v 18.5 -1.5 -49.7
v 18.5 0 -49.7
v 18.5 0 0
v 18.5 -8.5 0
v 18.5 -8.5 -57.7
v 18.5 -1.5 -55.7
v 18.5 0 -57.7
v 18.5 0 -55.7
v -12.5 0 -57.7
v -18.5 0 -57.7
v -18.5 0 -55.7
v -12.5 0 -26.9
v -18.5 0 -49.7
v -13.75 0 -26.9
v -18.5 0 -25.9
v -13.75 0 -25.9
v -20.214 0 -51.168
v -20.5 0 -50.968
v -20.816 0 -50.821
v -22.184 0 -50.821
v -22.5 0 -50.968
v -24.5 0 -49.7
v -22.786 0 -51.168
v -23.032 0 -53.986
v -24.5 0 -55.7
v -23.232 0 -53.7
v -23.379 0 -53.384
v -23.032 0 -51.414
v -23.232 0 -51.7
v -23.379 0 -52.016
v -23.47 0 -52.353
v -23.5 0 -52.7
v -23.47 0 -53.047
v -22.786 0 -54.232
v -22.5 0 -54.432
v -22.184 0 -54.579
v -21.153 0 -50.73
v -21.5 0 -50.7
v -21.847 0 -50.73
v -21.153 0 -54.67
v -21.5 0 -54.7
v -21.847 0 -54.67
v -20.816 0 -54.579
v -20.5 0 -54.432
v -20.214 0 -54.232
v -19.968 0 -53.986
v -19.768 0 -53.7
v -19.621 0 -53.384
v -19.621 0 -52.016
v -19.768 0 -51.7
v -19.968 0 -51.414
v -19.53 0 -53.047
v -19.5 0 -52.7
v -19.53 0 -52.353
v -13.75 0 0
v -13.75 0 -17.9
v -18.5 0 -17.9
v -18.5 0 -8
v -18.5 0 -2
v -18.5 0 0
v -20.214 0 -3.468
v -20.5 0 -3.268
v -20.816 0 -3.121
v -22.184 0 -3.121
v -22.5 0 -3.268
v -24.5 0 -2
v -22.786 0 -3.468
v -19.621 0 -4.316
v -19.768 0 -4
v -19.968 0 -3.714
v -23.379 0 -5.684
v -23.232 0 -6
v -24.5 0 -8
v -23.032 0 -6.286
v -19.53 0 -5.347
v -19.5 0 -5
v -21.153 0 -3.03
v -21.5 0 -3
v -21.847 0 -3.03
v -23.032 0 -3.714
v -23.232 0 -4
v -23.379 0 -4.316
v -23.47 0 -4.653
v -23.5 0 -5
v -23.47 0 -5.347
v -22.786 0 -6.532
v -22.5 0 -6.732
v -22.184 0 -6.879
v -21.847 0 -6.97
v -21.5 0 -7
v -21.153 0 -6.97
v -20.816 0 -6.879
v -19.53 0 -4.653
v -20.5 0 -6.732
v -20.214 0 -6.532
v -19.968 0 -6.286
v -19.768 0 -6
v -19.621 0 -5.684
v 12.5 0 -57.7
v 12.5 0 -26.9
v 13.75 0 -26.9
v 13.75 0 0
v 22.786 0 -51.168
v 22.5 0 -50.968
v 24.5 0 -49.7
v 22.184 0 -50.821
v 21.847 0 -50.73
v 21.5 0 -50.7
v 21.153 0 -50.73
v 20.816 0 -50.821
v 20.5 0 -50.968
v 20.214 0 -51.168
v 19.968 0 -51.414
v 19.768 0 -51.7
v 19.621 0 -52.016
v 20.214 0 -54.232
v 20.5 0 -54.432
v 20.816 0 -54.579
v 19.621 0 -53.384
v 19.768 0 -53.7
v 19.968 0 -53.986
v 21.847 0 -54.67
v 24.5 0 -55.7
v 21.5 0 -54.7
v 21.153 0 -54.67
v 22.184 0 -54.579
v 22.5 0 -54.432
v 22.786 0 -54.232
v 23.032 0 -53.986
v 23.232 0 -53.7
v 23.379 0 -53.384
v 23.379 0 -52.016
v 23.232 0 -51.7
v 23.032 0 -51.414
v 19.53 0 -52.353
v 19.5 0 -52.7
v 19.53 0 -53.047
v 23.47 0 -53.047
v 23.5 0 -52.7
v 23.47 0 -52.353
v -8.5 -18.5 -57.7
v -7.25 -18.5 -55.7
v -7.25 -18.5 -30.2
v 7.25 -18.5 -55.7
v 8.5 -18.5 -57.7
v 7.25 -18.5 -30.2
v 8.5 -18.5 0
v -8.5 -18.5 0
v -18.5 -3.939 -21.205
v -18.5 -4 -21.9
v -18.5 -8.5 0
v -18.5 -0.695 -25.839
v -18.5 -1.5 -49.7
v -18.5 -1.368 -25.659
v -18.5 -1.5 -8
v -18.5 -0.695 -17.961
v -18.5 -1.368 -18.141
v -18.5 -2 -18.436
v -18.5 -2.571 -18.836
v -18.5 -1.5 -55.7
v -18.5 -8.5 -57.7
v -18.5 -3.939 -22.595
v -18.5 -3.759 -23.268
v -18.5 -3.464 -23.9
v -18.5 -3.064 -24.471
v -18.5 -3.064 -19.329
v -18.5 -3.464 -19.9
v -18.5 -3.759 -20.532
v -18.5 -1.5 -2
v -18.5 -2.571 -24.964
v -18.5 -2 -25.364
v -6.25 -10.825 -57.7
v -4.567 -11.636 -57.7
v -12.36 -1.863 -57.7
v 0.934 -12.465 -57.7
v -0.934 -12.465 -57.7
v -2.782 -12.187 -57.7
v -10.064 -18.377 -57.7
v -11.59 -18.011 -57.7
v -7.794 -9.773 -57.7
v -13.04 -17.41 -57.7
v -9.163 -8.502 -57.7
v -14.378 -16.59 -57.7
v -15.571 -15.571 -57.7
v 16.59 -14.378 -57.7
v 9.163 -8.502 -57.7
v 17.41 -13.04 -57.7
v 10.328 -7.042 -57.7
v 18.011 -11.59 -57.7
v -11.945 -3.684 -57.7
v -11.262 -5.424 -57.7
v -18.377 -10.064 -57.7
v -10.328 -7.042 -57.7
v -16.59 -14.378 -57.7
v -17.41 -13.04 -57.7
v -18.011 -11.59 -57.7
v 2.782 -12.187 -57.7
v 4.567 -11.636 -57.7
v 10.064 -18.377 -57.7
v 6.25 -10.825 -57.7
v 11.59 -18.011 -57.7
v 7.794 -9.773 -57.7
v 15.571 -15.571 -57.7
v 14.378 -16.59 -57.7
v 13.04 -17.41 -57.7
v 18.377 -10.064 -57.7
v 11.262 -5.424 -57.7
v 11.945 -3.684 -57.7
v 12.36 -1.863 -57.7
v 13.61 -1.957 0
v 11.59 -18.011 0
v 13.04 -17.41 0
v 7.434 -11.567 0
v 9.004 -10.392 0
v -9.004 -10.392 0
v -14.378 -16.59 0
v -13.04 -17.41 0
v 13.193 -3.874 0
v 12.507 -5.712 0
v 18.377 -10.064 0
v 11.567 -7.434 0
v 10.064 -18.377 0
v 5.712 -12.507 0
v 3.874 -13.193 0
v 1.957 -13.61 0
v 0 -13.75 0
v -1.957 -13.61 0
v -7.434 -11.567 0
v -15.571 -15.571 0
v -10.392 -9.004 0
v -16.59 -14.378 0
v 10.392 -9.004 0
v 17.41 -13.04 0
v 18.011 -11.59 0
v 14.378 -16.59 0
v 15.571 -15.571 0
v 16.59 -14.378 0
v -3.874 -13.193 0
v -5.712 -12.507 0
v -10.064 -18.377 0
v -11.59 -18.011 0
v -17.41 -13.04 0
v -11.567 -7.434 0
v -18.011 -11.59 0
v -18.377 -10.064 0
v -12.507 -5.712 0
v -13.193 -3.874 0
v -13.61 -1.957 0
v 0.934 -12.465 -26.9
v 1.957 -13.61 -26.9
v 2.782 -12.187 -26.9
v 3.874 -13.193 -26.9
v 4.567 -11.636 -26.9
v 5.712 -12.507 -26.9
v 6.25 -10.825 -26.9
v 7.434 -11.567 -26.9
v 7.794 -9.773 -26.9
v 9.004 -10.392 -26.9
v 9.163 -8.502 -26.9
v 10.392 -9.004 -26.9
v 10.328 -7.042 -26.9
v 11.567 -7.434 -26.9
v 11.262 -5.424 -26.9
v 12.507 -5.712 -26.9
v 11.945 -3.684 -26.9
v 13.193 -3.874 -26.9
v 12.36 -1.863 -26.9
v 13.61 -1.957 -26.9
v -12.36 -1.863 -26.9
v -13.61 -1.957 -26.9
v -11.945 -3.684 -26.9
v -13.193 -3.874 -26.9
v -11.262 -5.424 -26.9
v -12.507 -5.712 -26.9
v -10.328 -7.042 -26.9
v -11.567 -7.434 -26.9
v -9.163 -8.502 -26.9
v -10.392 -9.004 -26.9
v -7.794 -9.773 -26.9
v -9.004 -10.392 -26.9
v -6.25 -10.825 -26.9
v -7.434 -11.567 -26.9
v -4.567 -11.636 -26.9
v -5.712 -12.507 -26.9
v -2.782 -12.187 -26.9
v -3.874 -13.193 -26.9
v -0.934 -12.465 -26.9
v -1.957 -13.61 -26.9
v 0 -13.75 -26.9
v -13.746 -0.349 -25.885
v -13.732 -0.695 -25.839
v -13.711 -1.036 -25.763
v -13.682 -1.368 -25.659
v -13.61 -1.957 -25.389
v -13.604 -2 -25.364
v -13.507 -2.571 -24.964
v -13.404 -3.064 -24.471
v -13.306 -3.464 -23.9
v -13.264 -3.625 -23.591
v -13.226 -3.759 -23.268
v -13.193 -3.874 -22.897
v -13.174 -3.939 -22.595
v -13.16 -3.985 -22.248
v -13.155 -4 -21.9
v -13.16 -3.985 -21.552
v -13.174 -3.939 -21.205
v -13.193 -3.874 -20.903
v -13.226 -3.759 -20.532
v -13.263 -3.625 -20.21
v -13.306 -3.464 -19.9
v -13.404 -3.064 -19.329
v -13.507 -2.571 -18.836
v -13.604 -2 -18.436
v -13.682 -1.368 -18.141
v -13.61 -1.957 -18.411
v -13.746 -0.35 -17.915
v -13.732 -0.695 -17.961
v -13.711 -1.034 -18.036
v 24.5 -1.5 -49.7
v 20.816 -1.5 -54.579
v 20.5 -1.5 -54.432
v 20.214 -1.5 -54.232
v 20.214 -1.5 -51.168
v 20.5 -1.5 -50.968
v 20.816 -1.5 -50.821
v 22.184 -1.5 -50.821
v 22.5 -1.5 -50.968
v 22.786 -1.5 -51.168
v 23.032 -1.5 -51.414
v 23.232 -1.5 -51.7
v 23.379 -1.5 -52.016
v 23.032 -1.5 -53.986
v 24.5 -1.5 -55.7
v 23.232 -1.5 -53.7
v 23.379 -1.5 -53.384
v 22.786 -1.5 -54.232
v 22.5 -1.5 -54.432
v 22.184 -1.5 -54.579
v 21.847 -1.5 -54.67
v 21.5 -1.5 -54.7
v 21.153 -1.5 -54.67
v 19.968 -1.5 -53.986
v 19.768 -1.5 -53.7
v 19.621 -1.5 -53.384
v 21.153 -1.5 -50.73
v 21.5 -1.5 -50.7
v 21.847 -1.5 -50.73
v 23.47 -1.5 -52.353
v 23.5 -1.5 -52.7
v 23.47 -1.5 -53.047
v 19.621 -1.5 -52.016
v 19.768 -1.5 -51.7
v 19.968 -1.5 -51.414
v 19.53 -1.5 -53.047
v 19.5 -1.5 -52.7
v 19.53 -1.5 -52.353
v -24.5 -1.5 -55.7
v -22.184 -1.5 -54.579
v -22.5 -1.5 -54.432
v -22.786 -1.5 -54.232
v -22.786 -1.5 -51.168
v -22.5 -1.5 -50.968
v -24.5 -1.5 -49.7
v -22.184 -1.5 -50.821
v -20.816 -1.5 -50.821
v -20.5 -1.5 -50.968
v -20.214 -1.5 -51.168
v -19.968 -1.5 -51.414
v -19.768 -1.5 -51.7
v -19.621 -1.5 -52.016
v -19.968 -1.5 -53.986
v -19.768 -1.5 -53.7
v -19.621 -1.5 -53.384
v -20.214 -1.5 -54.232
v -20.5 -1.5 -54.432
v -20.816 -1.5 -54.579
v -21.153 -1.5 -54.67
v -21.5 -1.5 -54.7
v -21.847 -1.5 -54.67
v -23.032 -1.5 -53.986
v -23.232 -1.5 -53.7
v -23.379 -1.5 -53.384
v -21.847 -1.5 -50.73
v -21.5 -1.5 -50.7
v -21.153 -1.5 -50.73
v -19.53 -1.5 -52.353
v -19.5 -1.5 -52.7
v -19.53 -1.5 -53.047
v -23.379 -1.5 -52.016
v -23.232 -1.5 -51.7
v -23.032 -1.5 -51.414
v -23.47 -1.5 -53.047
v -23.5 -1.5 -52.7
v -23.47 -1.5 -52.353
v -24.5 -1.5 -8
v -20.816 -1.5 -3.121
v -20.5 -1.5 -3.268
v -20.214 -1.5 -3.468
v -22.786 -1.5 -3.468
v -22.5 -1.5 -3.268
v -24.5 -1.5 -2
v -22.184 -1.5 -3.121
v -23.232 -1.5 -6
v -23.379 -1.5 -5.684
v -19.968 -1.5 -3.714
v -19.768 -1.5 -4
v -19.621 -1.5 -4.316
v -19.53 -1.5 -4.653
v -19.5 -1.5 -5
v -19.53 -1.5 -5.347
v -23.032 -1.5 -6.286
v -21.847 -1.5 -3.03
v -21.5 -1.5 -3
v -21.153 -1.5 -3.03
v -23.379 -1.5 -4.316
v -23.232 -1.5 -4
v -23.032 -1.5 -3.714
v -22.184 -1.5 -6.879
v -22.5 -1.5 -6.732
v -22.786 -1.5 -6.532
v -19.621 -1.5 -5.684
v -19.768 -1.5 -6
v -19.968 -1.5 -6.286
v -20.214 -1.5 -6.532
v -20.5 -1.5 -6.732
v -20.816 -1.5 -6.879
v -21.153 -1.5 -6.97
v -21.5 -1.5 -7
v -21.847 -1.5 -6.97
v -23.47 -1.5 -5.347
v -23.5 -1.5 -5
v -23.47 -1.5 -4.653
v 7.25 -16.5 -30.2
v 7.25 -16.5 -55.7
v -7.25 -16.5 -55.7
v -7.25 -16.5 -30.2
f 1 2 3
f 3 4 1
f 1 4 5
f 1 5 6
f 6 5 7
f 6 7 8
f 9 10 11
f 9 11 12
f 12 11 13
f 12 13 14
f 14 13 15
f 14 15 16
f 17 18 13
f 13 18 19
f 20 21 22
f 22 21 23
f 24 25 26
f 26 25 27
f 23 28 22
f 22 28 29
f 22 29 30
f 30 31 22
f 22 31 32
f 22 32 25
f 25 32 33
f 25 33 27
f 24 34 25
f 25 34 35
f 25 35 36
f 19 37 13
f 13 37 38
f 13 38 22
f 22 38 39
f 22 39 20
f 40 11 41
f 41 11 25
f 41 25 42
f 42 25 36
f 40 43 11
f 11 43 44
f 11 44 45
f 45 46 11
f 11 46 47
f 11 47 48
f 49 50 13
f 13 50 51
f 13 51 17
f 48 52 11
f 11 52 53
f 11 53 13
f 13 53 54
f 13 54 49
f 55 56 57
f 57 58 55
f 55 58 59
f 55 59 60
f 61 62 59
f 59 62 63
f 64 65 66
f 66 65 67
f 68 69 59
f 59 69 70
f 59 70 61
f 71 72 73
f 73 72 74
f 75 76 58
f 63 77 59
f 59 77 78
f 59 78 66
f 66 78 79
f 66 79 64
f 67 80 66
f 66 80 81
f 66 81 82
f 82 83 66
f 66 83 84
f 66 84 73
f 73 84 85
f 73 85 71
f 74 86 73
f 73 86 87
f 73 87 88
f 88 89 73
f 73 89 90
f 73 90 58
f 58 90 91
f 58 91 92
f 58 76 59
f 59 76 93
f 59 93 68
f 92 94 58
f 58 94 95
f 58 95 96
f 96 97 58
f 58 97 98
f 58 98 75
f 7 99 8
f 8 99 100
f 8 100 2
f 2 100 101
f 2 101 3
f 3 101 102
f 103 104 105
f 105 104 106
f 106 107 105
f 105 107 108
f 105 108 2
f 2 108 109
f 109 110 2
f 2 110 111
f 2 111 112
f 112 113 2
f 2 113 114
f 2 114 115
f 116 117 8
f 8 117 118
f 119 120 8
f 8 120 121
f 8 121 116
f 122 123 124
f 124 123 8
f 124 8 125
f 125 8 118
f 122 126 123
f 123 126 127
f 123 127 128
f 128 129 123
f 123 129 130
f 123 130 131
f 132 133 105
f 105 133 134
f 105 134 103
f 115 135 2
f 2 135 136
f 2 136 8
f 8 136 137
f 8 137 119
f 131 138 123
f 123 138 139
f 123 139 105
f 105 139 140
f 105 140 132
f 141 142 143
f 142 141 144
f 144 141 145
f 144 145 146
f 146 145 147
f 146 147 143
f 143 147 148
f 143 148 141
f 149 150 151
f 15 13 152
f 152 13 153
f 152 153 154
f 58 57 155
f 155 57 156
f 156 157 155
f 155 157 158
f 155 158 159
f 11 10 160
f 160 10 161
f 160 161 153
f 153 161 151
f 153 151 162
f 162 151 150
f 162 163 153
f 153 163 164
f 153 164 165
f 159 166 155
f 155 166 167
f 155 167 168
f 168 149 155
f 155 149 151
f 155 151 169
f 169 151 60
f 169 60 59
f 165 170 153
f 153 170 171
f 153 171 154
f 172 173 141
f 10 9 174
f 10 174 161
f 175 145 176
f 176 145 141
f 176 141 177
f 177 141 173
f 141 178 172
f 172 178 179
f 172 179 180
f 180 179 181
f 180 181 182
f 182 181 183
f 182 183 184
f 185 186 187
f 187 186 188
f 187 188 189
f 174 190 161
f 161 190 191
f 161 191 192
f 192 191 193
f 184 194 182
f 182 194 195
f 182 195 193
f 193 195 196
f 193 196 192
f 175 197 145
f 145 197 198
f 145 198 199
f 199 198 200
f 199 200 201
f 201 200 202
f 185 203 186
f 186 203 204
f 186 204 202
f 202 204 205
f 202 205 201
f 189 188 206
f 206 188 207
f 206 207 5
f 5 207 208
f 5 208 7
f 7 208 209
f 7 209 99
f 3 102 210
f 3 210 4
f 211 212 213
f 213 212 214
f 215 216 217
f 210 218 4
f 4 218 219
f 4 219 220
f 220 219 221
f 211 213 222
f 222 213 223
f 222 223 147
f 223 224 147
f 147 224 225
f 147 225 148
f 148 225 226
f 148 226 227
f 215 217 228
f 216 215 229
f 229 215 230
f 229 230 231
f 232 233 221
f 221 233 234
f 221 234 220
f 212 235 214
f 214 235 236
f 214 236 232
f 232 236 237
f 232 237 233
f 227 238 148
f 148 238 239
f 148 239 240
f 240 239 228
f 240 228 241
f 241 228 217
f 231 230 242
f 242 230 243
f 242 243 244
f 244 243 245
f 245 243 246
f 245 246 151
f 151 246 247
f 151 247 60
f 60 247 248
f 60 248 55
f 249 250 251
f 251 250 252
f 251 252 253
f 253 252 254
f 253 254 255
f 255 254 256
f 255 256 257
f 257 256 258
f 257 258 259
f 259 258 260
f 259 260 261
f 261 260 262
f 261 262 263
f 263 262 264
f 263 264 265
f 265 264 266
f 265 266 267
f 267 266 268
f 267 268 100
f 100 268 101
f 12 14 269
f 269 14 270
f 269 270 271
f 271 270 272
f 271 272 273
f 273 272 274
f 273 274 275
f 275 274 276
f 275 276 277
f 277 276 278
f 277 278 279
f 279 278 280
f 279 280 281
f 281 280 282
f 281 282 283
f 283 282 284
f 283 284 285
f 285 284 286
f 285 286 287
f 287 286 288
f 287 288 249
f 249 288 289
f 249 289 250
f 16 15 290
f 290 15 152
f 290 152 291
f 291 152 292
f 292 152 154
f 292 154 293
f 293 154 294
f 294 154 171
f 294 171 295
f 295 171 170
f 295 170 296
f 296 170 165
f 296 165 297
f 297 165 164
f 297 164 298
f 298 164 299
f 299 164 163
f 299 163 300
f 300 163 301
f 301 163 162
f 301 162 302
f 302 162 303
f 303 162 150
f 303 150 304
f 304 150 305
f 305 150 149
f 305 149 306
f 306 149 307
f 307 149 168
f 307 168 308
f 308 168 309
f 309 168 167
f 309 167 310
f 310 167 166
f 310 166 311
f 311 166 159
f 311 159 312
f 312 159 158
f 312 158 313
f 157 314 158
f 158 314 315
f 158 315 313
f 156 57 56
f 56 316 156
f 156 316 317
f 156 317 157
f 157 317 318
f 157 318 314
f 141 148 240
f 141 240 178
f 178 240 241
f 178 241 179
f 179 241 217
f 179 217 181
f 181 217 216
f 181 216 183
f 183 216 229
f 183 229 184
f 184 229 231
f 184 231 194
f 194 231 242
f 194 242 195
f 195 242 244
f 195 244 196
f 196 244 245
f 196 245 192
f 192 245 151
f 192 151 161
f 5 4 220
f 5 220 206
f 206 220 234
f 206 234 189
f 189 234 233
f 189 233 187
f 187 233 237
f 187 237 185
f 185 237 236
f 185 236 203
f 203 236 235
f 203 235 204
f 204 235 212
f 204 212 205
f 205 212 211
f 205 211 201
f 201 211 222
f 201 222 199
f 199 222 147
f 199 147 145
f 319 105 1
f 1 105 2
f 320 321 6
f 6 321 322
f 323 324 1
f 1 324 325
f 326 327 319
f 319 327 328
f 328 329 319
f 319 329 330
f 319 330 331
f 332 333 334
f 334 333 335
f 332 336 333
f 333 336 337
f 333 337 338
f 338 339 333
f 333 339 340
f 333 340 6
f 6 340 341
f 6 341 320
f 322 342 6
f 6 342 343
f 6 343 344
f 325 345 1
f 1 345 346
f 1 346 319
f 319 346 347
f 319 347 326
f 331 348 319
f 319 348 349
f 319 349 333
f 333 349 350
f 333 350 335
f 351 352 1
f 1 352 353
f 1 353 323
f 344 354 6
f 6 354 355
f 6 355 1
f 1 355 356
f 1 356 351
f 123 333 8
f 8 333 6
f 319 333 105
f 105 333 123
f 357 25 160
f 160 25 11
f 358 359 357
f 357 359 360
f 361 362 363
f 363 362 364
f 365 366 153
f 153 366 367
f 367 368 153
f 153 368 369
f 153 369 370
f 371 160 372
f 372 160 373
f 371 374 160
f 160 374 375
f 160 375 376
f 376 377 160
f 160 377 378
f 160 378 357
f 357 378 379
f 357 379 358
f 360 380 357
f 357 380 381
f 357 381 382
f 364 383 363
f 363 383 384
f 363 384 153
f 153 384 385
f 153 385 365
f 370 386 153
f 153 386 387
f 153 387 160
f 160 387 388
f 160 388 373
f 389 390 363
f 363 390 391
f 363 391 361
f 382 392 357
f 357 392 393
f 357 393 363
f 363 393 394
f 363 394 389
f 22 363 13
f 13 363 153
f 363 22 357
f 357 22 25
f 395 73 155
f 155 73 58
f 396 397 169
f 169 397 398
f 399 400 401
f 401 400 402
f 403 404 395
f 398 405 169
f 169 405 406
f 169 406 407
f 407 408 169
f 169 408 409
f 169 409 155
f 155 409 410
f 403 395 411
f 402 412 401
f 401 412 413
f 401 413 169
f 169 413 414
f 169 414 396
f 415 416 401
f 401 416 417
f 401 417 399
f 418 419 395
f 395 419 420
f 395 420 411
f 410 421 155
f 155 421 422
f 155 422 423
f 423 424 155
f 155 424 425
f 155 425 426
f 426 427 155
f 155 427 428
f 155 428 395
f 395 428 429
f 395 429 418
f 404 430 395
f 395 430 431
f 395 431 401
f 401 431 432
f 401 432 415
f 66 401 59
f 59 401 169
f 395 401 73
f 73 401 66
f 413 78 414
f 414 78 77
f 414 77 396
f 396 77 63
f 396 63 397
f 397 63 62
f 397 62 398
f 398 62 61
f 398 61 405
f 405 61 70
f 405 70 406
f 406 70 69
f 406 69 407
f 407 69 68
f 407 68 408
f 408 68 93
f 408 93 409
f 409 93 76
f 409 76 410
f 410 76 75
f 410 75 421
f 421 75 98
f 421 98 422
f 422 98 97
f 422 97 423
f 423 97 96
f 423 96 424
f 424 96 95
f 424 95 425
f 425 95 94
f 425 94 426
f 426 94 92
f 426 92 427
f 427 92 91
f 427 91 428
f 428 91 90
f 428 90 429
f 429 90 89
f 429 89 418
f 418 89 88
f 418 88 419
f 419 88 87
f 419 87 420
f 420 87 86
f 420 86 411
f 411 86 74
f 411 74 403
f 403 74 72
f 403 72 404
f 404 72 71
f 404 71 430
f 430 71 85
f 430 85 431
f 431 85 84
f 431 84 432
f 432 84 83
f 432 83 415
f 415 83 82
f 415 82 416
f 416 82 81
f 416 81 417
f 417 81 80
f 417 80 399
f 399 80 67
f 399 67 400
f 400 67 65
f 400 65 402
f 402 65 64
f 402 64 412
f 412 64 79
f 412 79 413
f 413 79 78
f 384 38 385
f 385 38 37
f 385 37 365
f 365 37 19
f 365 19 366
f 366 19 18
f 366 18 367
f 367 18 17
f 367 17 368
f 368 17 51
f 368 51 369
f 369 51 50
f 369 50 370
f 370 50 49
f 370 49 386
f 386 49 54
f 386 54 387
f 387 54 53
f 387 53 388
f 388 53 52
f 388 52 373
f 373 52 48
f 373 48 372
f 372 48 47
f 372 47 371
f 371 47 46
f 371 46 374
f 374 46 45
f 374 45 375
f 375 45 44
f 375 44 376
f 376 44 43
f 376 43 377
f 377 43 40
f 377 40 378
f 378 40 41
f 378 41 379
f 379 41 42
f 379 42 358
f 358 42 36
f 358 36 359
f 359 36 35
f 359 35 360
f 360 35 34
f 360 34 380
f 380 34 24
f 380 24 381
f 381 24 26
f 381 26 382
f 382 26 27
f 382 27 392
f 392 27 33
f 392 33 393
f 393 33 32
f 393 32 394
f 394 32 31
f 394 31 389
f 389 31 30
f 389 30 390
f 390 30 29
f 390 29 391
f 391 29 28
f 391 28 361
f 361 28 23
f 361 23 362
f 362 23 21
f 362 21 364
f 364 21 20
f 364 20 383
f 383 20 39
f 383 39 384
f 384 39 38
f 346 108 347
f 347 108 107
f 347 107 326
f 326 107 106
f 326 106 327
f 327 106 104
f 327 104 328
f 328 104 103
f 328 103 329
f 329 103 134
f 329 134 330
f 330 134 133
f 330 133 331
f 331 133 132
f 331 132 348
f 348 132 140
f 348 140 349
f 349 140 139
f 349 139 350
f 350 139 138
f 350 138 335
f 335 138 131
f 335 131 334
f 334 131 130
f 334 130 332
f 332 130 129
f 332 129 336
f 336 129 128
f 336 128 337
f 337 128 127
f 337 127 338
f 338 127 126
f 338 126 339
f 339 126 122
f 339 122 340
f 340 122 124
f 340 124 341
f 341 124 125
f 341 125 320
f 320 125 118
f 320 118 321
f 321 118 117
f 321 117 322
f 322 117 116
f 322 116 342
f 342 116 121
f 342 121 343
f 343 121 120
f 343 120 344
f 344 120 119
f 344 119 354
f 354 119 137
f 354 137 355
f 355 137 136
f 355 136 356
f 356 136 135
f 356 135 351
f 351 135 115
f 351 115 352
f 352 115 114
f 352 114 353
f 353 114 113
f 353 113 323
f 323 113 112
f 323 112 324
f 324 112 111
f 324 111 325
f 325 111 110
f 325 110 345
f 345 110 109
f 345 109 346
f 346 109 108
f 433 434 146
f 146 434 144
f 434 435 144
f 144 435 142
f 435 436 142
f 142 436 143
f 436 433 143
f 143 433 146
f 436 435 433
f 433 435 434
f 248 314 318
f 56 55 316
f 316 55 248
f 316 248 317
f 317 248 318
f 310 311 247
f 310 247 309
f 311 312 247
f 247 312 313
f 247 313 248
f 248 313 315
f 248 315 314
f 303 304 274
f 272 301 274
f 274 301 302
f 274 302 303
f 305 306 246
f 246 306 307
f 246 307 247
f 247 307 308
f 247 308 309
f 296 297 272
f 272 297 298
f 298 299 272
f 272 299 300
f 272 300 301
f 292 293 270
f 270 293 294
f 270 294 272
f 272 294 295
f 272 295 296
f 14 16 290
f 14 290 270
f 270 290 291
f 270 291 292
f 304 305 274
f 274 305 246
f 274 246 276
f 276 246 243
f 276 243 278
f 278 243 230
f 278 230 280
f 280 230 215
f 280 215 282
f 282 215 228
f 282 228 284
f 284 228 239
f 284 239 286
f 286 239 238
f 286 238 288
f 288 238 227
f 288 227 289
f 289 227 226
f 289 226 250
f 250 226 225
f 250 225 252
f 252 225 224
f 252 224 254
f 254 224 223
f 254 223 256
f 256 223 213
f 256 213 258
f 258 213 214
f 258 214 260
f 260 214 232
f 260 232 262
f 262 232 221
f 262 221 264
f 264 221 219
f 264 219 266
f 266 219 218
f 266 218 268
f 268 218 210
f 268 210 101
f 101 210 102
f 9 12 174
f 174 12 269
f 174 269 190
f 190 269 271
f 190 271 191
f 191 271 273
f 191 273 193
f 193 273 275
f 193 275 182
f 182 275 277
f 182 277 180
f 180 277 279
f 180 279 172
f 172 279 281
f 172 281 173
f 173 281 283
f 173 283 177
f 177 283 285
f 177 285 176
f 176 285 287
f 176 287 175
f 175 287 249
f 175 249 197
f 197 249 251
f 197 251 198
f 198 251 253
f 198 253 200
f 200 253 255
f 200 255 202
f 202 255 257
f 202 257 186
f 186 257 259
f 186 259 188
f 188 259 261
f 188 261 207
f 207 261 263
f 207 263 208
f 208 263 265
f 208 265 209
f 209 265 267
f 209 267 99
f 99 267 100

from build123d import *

# Parameters (mm, degrees)
EXTRUDE_1_DEPTH     = 57.7
EXTRUDE_2_DEPTH     = 30.8
SKETCH_5_R          = 4
CUT_EXTRUDE_1_DEPTH = 15
FILLET_1_R          = 10
SKETCH_6_W          = 6
SKETCH_6_H          = 1.5
EXTRUDE_3_DEPTH     = 6
EXTRUDE_START       = -37
SKETCH_6_3_W        = 6
SKETCH_6_3_H        = 1.5
EXTRUDE_4_DEPTH     = 6
SKETCH_7_R          = 2
CUT_EXTRUDE_2_DEPTH = 6
SKETCH_8_W          = 14.5
SKETCH_8_H          = 25.5
CUT_EXTRUDE_3_DEPTH = 2
CUT_EXTRUDE_START   = -26.9
CUT_EXTRUDE_4_DEPTH = 26.9
CUT_EXTRUDE_5_DEPTH = 44.487239508
SKETCH_11_W         = 6
SKETCH_11_H         = 6
CUT_EXTRUDE_6_DEPTH = 10


with BuildPart() as part:
    # 스케치1 → 보스-돌출1 (new body)
    with BuildSketch(Plane.XY):
        with BuildLine():
            Line((-13.5, 0), (-18.5, 0))
            Line((-18.5, 0), (-18.5, -18.5))
            Line((-18.5, -18.5), (18.5, -18.5))
            Line((18.5, -18.5), (18.5, 0))
            Line((18.5, 0), (13.5, 0))
            ThreePointArc((13.5, 0), (0, -13.5), (-13.5, 0))
        make_face()
    extrude(amount=-EXTRUDE_1_DEPTH)

    # 스케치3 → 보스-돌출2 (add)
    with BuildSketch(Plane.XY.offset(-26.9)):
        with BuildLine():
            Line((-13.5, 0), (-11.5, 0))
            ThreePointArc((-11.5, 0), (0, -11.5), (11.5, 0))
            Line((11.5, 0), (13.5, 0))
            ThreePointArc((13.5, 0), (0, -13.5), (-13.5, 0))
        make_face()
    extrude(amount=-EXTRUDE_2_DEPTH)

    # 스케치5 → 컷-돌출1 (cut)
    with BuildSketch(Plane.ZY.offset(18.5)):
        with Locations((-21.9, 0)):
            Circle(SKETCH_5_R)
    extrude(amount=-CUT_EXTRUDE_1_DEPTH, mode=Mode.SUBTRACT)

    # 필렛1
    fillet_1_edges = [part.edges().sort_by_distance(p)[0] for p in [
        (18.5, -18.5, -28.85),
        (-18.5, -18.5, -28.85),
    ]]
    fillet(fillet_1_edges, radius=FILLET_1_R)

    # 스케치6 → 보스-돌출3 (add)
    with BuildSketch(Plane(origin=(18.5, 0, 0), x_dir=(0, 0, -1), z_dir=(1, 0, 0))):
        with Locations((52.7, -0.75)):
            Rectangle(SKETCH_6_W, SKETCH_6_H)
        with Locations((5, -0.75)):
            Rectangle(SKETCH_6_W, SKETCH_6_H)
    extrude(amount=EXTRUDE_3_DEPTH)

    # 스케치6<3> → 보스-돌출4 (add)
    with BuildSketch(Plane(origin=(18.5, 0, 0), x_dir=(0, 0, -1), z_dir=(1, 0, 0)).offset(EXTRUDE_START)):
        with Locations((52.7, -0.75)):
            Rectangle(SKETCH_6_3_W, SKETCH_6_3_H)
        with Locations((5, -0.75)):
            Rectangle(SKETCH_6_3_W, SKETCH_6_3_H)
    extrude(amount=-EXTRUDE_4_DEPTH)

    # 스케치7 → 컷-돌출2 (cut)
    with BuildSketch(Plane(origin=(0, 0, 0), x_dir=(1, 0, 0), z_dir=(0, 1, 0))):
        with Locations(Location((21.5, 5, 0), (0, 0, 270))):
            Circle(SKETCH_7_R)
        with Locations(Location((21.5, 52.7, 0), (0, 0, 270))):
            Circle(SKETCH_7_R)
        with Locations(Location((-21.5, 5, 0), (0, 0, 180))):
            Circle(SKETCH_7_R)
        with Locations((-21.5, 52.7)):
            Circle(SKETCH_7_R)
    extrude(amount=-CUT_EXTRUDE_2_DEPTH, mode=Mode.SUBTRACT)

    # 스케치8 → 컷-돌출3 (cut)
    with BuildSketch(Plane.XZ.offset(18.5)):
        with Locations((0, -42.95)):
            Rectangle(SKETCH_8_W, SKETCH_8_H)
    extrude(amount=-CUT_EXTRUDE_3_DEPTH, mode=Mode.SUBTRACT)

    # 스케치9 → 컷-돌출4 (cut)
    with BuildSketch(Plane.XY.offset(CUT_EXTRUDE_START)):
        with BuildLine():
            Line((-13.5, 0), (-13.75, 0))
            ThreePointArc((-13.75, 0), (0, -13.75), (13.75, 0))
            Line((13.75, 0), (13.5, 0))
            ThreePointArc((13.5, 0), (0, -13.5), (-13.5, 0))
        make_face()
    extrude(amount=CUT_EXTRUDE_4_DEPTH, mode=Mode.SUBTRACT)

    # 스케치10 → 컷-돌출5 (cut, through all)
    with BuildSketch(Plane.XY.offset(-26.9)):
        with BuildLine():
            ThreePointArc((11.5, 0), (0, -11.5), (-11.5, 0))
            Line((-11.5, 0), (-12.5, 0))
            ThreePointArc((-12.5, 0), (0, -12.5), (12.5, 0))
            Line((12.5, 0), (11.5, 0))
        make_face()
    extrude(amount=-CUT_EXTRUDE_5_DEPTH, mode=Mode.SUBTRACT)

    # 스케치11 → 컷-돌출6 (cut)
    with BuildSketch(Plane.XZ.offset(1.5)):
        with Locations((21.5, -5)):
            Rectangle(SKETCH_11_W, SKETCH_11_H)
    extrude(amount=-CUT_EXTRUDE_6_DEPTH, mode=Mode.SUBTRACT)


solid = part.part
